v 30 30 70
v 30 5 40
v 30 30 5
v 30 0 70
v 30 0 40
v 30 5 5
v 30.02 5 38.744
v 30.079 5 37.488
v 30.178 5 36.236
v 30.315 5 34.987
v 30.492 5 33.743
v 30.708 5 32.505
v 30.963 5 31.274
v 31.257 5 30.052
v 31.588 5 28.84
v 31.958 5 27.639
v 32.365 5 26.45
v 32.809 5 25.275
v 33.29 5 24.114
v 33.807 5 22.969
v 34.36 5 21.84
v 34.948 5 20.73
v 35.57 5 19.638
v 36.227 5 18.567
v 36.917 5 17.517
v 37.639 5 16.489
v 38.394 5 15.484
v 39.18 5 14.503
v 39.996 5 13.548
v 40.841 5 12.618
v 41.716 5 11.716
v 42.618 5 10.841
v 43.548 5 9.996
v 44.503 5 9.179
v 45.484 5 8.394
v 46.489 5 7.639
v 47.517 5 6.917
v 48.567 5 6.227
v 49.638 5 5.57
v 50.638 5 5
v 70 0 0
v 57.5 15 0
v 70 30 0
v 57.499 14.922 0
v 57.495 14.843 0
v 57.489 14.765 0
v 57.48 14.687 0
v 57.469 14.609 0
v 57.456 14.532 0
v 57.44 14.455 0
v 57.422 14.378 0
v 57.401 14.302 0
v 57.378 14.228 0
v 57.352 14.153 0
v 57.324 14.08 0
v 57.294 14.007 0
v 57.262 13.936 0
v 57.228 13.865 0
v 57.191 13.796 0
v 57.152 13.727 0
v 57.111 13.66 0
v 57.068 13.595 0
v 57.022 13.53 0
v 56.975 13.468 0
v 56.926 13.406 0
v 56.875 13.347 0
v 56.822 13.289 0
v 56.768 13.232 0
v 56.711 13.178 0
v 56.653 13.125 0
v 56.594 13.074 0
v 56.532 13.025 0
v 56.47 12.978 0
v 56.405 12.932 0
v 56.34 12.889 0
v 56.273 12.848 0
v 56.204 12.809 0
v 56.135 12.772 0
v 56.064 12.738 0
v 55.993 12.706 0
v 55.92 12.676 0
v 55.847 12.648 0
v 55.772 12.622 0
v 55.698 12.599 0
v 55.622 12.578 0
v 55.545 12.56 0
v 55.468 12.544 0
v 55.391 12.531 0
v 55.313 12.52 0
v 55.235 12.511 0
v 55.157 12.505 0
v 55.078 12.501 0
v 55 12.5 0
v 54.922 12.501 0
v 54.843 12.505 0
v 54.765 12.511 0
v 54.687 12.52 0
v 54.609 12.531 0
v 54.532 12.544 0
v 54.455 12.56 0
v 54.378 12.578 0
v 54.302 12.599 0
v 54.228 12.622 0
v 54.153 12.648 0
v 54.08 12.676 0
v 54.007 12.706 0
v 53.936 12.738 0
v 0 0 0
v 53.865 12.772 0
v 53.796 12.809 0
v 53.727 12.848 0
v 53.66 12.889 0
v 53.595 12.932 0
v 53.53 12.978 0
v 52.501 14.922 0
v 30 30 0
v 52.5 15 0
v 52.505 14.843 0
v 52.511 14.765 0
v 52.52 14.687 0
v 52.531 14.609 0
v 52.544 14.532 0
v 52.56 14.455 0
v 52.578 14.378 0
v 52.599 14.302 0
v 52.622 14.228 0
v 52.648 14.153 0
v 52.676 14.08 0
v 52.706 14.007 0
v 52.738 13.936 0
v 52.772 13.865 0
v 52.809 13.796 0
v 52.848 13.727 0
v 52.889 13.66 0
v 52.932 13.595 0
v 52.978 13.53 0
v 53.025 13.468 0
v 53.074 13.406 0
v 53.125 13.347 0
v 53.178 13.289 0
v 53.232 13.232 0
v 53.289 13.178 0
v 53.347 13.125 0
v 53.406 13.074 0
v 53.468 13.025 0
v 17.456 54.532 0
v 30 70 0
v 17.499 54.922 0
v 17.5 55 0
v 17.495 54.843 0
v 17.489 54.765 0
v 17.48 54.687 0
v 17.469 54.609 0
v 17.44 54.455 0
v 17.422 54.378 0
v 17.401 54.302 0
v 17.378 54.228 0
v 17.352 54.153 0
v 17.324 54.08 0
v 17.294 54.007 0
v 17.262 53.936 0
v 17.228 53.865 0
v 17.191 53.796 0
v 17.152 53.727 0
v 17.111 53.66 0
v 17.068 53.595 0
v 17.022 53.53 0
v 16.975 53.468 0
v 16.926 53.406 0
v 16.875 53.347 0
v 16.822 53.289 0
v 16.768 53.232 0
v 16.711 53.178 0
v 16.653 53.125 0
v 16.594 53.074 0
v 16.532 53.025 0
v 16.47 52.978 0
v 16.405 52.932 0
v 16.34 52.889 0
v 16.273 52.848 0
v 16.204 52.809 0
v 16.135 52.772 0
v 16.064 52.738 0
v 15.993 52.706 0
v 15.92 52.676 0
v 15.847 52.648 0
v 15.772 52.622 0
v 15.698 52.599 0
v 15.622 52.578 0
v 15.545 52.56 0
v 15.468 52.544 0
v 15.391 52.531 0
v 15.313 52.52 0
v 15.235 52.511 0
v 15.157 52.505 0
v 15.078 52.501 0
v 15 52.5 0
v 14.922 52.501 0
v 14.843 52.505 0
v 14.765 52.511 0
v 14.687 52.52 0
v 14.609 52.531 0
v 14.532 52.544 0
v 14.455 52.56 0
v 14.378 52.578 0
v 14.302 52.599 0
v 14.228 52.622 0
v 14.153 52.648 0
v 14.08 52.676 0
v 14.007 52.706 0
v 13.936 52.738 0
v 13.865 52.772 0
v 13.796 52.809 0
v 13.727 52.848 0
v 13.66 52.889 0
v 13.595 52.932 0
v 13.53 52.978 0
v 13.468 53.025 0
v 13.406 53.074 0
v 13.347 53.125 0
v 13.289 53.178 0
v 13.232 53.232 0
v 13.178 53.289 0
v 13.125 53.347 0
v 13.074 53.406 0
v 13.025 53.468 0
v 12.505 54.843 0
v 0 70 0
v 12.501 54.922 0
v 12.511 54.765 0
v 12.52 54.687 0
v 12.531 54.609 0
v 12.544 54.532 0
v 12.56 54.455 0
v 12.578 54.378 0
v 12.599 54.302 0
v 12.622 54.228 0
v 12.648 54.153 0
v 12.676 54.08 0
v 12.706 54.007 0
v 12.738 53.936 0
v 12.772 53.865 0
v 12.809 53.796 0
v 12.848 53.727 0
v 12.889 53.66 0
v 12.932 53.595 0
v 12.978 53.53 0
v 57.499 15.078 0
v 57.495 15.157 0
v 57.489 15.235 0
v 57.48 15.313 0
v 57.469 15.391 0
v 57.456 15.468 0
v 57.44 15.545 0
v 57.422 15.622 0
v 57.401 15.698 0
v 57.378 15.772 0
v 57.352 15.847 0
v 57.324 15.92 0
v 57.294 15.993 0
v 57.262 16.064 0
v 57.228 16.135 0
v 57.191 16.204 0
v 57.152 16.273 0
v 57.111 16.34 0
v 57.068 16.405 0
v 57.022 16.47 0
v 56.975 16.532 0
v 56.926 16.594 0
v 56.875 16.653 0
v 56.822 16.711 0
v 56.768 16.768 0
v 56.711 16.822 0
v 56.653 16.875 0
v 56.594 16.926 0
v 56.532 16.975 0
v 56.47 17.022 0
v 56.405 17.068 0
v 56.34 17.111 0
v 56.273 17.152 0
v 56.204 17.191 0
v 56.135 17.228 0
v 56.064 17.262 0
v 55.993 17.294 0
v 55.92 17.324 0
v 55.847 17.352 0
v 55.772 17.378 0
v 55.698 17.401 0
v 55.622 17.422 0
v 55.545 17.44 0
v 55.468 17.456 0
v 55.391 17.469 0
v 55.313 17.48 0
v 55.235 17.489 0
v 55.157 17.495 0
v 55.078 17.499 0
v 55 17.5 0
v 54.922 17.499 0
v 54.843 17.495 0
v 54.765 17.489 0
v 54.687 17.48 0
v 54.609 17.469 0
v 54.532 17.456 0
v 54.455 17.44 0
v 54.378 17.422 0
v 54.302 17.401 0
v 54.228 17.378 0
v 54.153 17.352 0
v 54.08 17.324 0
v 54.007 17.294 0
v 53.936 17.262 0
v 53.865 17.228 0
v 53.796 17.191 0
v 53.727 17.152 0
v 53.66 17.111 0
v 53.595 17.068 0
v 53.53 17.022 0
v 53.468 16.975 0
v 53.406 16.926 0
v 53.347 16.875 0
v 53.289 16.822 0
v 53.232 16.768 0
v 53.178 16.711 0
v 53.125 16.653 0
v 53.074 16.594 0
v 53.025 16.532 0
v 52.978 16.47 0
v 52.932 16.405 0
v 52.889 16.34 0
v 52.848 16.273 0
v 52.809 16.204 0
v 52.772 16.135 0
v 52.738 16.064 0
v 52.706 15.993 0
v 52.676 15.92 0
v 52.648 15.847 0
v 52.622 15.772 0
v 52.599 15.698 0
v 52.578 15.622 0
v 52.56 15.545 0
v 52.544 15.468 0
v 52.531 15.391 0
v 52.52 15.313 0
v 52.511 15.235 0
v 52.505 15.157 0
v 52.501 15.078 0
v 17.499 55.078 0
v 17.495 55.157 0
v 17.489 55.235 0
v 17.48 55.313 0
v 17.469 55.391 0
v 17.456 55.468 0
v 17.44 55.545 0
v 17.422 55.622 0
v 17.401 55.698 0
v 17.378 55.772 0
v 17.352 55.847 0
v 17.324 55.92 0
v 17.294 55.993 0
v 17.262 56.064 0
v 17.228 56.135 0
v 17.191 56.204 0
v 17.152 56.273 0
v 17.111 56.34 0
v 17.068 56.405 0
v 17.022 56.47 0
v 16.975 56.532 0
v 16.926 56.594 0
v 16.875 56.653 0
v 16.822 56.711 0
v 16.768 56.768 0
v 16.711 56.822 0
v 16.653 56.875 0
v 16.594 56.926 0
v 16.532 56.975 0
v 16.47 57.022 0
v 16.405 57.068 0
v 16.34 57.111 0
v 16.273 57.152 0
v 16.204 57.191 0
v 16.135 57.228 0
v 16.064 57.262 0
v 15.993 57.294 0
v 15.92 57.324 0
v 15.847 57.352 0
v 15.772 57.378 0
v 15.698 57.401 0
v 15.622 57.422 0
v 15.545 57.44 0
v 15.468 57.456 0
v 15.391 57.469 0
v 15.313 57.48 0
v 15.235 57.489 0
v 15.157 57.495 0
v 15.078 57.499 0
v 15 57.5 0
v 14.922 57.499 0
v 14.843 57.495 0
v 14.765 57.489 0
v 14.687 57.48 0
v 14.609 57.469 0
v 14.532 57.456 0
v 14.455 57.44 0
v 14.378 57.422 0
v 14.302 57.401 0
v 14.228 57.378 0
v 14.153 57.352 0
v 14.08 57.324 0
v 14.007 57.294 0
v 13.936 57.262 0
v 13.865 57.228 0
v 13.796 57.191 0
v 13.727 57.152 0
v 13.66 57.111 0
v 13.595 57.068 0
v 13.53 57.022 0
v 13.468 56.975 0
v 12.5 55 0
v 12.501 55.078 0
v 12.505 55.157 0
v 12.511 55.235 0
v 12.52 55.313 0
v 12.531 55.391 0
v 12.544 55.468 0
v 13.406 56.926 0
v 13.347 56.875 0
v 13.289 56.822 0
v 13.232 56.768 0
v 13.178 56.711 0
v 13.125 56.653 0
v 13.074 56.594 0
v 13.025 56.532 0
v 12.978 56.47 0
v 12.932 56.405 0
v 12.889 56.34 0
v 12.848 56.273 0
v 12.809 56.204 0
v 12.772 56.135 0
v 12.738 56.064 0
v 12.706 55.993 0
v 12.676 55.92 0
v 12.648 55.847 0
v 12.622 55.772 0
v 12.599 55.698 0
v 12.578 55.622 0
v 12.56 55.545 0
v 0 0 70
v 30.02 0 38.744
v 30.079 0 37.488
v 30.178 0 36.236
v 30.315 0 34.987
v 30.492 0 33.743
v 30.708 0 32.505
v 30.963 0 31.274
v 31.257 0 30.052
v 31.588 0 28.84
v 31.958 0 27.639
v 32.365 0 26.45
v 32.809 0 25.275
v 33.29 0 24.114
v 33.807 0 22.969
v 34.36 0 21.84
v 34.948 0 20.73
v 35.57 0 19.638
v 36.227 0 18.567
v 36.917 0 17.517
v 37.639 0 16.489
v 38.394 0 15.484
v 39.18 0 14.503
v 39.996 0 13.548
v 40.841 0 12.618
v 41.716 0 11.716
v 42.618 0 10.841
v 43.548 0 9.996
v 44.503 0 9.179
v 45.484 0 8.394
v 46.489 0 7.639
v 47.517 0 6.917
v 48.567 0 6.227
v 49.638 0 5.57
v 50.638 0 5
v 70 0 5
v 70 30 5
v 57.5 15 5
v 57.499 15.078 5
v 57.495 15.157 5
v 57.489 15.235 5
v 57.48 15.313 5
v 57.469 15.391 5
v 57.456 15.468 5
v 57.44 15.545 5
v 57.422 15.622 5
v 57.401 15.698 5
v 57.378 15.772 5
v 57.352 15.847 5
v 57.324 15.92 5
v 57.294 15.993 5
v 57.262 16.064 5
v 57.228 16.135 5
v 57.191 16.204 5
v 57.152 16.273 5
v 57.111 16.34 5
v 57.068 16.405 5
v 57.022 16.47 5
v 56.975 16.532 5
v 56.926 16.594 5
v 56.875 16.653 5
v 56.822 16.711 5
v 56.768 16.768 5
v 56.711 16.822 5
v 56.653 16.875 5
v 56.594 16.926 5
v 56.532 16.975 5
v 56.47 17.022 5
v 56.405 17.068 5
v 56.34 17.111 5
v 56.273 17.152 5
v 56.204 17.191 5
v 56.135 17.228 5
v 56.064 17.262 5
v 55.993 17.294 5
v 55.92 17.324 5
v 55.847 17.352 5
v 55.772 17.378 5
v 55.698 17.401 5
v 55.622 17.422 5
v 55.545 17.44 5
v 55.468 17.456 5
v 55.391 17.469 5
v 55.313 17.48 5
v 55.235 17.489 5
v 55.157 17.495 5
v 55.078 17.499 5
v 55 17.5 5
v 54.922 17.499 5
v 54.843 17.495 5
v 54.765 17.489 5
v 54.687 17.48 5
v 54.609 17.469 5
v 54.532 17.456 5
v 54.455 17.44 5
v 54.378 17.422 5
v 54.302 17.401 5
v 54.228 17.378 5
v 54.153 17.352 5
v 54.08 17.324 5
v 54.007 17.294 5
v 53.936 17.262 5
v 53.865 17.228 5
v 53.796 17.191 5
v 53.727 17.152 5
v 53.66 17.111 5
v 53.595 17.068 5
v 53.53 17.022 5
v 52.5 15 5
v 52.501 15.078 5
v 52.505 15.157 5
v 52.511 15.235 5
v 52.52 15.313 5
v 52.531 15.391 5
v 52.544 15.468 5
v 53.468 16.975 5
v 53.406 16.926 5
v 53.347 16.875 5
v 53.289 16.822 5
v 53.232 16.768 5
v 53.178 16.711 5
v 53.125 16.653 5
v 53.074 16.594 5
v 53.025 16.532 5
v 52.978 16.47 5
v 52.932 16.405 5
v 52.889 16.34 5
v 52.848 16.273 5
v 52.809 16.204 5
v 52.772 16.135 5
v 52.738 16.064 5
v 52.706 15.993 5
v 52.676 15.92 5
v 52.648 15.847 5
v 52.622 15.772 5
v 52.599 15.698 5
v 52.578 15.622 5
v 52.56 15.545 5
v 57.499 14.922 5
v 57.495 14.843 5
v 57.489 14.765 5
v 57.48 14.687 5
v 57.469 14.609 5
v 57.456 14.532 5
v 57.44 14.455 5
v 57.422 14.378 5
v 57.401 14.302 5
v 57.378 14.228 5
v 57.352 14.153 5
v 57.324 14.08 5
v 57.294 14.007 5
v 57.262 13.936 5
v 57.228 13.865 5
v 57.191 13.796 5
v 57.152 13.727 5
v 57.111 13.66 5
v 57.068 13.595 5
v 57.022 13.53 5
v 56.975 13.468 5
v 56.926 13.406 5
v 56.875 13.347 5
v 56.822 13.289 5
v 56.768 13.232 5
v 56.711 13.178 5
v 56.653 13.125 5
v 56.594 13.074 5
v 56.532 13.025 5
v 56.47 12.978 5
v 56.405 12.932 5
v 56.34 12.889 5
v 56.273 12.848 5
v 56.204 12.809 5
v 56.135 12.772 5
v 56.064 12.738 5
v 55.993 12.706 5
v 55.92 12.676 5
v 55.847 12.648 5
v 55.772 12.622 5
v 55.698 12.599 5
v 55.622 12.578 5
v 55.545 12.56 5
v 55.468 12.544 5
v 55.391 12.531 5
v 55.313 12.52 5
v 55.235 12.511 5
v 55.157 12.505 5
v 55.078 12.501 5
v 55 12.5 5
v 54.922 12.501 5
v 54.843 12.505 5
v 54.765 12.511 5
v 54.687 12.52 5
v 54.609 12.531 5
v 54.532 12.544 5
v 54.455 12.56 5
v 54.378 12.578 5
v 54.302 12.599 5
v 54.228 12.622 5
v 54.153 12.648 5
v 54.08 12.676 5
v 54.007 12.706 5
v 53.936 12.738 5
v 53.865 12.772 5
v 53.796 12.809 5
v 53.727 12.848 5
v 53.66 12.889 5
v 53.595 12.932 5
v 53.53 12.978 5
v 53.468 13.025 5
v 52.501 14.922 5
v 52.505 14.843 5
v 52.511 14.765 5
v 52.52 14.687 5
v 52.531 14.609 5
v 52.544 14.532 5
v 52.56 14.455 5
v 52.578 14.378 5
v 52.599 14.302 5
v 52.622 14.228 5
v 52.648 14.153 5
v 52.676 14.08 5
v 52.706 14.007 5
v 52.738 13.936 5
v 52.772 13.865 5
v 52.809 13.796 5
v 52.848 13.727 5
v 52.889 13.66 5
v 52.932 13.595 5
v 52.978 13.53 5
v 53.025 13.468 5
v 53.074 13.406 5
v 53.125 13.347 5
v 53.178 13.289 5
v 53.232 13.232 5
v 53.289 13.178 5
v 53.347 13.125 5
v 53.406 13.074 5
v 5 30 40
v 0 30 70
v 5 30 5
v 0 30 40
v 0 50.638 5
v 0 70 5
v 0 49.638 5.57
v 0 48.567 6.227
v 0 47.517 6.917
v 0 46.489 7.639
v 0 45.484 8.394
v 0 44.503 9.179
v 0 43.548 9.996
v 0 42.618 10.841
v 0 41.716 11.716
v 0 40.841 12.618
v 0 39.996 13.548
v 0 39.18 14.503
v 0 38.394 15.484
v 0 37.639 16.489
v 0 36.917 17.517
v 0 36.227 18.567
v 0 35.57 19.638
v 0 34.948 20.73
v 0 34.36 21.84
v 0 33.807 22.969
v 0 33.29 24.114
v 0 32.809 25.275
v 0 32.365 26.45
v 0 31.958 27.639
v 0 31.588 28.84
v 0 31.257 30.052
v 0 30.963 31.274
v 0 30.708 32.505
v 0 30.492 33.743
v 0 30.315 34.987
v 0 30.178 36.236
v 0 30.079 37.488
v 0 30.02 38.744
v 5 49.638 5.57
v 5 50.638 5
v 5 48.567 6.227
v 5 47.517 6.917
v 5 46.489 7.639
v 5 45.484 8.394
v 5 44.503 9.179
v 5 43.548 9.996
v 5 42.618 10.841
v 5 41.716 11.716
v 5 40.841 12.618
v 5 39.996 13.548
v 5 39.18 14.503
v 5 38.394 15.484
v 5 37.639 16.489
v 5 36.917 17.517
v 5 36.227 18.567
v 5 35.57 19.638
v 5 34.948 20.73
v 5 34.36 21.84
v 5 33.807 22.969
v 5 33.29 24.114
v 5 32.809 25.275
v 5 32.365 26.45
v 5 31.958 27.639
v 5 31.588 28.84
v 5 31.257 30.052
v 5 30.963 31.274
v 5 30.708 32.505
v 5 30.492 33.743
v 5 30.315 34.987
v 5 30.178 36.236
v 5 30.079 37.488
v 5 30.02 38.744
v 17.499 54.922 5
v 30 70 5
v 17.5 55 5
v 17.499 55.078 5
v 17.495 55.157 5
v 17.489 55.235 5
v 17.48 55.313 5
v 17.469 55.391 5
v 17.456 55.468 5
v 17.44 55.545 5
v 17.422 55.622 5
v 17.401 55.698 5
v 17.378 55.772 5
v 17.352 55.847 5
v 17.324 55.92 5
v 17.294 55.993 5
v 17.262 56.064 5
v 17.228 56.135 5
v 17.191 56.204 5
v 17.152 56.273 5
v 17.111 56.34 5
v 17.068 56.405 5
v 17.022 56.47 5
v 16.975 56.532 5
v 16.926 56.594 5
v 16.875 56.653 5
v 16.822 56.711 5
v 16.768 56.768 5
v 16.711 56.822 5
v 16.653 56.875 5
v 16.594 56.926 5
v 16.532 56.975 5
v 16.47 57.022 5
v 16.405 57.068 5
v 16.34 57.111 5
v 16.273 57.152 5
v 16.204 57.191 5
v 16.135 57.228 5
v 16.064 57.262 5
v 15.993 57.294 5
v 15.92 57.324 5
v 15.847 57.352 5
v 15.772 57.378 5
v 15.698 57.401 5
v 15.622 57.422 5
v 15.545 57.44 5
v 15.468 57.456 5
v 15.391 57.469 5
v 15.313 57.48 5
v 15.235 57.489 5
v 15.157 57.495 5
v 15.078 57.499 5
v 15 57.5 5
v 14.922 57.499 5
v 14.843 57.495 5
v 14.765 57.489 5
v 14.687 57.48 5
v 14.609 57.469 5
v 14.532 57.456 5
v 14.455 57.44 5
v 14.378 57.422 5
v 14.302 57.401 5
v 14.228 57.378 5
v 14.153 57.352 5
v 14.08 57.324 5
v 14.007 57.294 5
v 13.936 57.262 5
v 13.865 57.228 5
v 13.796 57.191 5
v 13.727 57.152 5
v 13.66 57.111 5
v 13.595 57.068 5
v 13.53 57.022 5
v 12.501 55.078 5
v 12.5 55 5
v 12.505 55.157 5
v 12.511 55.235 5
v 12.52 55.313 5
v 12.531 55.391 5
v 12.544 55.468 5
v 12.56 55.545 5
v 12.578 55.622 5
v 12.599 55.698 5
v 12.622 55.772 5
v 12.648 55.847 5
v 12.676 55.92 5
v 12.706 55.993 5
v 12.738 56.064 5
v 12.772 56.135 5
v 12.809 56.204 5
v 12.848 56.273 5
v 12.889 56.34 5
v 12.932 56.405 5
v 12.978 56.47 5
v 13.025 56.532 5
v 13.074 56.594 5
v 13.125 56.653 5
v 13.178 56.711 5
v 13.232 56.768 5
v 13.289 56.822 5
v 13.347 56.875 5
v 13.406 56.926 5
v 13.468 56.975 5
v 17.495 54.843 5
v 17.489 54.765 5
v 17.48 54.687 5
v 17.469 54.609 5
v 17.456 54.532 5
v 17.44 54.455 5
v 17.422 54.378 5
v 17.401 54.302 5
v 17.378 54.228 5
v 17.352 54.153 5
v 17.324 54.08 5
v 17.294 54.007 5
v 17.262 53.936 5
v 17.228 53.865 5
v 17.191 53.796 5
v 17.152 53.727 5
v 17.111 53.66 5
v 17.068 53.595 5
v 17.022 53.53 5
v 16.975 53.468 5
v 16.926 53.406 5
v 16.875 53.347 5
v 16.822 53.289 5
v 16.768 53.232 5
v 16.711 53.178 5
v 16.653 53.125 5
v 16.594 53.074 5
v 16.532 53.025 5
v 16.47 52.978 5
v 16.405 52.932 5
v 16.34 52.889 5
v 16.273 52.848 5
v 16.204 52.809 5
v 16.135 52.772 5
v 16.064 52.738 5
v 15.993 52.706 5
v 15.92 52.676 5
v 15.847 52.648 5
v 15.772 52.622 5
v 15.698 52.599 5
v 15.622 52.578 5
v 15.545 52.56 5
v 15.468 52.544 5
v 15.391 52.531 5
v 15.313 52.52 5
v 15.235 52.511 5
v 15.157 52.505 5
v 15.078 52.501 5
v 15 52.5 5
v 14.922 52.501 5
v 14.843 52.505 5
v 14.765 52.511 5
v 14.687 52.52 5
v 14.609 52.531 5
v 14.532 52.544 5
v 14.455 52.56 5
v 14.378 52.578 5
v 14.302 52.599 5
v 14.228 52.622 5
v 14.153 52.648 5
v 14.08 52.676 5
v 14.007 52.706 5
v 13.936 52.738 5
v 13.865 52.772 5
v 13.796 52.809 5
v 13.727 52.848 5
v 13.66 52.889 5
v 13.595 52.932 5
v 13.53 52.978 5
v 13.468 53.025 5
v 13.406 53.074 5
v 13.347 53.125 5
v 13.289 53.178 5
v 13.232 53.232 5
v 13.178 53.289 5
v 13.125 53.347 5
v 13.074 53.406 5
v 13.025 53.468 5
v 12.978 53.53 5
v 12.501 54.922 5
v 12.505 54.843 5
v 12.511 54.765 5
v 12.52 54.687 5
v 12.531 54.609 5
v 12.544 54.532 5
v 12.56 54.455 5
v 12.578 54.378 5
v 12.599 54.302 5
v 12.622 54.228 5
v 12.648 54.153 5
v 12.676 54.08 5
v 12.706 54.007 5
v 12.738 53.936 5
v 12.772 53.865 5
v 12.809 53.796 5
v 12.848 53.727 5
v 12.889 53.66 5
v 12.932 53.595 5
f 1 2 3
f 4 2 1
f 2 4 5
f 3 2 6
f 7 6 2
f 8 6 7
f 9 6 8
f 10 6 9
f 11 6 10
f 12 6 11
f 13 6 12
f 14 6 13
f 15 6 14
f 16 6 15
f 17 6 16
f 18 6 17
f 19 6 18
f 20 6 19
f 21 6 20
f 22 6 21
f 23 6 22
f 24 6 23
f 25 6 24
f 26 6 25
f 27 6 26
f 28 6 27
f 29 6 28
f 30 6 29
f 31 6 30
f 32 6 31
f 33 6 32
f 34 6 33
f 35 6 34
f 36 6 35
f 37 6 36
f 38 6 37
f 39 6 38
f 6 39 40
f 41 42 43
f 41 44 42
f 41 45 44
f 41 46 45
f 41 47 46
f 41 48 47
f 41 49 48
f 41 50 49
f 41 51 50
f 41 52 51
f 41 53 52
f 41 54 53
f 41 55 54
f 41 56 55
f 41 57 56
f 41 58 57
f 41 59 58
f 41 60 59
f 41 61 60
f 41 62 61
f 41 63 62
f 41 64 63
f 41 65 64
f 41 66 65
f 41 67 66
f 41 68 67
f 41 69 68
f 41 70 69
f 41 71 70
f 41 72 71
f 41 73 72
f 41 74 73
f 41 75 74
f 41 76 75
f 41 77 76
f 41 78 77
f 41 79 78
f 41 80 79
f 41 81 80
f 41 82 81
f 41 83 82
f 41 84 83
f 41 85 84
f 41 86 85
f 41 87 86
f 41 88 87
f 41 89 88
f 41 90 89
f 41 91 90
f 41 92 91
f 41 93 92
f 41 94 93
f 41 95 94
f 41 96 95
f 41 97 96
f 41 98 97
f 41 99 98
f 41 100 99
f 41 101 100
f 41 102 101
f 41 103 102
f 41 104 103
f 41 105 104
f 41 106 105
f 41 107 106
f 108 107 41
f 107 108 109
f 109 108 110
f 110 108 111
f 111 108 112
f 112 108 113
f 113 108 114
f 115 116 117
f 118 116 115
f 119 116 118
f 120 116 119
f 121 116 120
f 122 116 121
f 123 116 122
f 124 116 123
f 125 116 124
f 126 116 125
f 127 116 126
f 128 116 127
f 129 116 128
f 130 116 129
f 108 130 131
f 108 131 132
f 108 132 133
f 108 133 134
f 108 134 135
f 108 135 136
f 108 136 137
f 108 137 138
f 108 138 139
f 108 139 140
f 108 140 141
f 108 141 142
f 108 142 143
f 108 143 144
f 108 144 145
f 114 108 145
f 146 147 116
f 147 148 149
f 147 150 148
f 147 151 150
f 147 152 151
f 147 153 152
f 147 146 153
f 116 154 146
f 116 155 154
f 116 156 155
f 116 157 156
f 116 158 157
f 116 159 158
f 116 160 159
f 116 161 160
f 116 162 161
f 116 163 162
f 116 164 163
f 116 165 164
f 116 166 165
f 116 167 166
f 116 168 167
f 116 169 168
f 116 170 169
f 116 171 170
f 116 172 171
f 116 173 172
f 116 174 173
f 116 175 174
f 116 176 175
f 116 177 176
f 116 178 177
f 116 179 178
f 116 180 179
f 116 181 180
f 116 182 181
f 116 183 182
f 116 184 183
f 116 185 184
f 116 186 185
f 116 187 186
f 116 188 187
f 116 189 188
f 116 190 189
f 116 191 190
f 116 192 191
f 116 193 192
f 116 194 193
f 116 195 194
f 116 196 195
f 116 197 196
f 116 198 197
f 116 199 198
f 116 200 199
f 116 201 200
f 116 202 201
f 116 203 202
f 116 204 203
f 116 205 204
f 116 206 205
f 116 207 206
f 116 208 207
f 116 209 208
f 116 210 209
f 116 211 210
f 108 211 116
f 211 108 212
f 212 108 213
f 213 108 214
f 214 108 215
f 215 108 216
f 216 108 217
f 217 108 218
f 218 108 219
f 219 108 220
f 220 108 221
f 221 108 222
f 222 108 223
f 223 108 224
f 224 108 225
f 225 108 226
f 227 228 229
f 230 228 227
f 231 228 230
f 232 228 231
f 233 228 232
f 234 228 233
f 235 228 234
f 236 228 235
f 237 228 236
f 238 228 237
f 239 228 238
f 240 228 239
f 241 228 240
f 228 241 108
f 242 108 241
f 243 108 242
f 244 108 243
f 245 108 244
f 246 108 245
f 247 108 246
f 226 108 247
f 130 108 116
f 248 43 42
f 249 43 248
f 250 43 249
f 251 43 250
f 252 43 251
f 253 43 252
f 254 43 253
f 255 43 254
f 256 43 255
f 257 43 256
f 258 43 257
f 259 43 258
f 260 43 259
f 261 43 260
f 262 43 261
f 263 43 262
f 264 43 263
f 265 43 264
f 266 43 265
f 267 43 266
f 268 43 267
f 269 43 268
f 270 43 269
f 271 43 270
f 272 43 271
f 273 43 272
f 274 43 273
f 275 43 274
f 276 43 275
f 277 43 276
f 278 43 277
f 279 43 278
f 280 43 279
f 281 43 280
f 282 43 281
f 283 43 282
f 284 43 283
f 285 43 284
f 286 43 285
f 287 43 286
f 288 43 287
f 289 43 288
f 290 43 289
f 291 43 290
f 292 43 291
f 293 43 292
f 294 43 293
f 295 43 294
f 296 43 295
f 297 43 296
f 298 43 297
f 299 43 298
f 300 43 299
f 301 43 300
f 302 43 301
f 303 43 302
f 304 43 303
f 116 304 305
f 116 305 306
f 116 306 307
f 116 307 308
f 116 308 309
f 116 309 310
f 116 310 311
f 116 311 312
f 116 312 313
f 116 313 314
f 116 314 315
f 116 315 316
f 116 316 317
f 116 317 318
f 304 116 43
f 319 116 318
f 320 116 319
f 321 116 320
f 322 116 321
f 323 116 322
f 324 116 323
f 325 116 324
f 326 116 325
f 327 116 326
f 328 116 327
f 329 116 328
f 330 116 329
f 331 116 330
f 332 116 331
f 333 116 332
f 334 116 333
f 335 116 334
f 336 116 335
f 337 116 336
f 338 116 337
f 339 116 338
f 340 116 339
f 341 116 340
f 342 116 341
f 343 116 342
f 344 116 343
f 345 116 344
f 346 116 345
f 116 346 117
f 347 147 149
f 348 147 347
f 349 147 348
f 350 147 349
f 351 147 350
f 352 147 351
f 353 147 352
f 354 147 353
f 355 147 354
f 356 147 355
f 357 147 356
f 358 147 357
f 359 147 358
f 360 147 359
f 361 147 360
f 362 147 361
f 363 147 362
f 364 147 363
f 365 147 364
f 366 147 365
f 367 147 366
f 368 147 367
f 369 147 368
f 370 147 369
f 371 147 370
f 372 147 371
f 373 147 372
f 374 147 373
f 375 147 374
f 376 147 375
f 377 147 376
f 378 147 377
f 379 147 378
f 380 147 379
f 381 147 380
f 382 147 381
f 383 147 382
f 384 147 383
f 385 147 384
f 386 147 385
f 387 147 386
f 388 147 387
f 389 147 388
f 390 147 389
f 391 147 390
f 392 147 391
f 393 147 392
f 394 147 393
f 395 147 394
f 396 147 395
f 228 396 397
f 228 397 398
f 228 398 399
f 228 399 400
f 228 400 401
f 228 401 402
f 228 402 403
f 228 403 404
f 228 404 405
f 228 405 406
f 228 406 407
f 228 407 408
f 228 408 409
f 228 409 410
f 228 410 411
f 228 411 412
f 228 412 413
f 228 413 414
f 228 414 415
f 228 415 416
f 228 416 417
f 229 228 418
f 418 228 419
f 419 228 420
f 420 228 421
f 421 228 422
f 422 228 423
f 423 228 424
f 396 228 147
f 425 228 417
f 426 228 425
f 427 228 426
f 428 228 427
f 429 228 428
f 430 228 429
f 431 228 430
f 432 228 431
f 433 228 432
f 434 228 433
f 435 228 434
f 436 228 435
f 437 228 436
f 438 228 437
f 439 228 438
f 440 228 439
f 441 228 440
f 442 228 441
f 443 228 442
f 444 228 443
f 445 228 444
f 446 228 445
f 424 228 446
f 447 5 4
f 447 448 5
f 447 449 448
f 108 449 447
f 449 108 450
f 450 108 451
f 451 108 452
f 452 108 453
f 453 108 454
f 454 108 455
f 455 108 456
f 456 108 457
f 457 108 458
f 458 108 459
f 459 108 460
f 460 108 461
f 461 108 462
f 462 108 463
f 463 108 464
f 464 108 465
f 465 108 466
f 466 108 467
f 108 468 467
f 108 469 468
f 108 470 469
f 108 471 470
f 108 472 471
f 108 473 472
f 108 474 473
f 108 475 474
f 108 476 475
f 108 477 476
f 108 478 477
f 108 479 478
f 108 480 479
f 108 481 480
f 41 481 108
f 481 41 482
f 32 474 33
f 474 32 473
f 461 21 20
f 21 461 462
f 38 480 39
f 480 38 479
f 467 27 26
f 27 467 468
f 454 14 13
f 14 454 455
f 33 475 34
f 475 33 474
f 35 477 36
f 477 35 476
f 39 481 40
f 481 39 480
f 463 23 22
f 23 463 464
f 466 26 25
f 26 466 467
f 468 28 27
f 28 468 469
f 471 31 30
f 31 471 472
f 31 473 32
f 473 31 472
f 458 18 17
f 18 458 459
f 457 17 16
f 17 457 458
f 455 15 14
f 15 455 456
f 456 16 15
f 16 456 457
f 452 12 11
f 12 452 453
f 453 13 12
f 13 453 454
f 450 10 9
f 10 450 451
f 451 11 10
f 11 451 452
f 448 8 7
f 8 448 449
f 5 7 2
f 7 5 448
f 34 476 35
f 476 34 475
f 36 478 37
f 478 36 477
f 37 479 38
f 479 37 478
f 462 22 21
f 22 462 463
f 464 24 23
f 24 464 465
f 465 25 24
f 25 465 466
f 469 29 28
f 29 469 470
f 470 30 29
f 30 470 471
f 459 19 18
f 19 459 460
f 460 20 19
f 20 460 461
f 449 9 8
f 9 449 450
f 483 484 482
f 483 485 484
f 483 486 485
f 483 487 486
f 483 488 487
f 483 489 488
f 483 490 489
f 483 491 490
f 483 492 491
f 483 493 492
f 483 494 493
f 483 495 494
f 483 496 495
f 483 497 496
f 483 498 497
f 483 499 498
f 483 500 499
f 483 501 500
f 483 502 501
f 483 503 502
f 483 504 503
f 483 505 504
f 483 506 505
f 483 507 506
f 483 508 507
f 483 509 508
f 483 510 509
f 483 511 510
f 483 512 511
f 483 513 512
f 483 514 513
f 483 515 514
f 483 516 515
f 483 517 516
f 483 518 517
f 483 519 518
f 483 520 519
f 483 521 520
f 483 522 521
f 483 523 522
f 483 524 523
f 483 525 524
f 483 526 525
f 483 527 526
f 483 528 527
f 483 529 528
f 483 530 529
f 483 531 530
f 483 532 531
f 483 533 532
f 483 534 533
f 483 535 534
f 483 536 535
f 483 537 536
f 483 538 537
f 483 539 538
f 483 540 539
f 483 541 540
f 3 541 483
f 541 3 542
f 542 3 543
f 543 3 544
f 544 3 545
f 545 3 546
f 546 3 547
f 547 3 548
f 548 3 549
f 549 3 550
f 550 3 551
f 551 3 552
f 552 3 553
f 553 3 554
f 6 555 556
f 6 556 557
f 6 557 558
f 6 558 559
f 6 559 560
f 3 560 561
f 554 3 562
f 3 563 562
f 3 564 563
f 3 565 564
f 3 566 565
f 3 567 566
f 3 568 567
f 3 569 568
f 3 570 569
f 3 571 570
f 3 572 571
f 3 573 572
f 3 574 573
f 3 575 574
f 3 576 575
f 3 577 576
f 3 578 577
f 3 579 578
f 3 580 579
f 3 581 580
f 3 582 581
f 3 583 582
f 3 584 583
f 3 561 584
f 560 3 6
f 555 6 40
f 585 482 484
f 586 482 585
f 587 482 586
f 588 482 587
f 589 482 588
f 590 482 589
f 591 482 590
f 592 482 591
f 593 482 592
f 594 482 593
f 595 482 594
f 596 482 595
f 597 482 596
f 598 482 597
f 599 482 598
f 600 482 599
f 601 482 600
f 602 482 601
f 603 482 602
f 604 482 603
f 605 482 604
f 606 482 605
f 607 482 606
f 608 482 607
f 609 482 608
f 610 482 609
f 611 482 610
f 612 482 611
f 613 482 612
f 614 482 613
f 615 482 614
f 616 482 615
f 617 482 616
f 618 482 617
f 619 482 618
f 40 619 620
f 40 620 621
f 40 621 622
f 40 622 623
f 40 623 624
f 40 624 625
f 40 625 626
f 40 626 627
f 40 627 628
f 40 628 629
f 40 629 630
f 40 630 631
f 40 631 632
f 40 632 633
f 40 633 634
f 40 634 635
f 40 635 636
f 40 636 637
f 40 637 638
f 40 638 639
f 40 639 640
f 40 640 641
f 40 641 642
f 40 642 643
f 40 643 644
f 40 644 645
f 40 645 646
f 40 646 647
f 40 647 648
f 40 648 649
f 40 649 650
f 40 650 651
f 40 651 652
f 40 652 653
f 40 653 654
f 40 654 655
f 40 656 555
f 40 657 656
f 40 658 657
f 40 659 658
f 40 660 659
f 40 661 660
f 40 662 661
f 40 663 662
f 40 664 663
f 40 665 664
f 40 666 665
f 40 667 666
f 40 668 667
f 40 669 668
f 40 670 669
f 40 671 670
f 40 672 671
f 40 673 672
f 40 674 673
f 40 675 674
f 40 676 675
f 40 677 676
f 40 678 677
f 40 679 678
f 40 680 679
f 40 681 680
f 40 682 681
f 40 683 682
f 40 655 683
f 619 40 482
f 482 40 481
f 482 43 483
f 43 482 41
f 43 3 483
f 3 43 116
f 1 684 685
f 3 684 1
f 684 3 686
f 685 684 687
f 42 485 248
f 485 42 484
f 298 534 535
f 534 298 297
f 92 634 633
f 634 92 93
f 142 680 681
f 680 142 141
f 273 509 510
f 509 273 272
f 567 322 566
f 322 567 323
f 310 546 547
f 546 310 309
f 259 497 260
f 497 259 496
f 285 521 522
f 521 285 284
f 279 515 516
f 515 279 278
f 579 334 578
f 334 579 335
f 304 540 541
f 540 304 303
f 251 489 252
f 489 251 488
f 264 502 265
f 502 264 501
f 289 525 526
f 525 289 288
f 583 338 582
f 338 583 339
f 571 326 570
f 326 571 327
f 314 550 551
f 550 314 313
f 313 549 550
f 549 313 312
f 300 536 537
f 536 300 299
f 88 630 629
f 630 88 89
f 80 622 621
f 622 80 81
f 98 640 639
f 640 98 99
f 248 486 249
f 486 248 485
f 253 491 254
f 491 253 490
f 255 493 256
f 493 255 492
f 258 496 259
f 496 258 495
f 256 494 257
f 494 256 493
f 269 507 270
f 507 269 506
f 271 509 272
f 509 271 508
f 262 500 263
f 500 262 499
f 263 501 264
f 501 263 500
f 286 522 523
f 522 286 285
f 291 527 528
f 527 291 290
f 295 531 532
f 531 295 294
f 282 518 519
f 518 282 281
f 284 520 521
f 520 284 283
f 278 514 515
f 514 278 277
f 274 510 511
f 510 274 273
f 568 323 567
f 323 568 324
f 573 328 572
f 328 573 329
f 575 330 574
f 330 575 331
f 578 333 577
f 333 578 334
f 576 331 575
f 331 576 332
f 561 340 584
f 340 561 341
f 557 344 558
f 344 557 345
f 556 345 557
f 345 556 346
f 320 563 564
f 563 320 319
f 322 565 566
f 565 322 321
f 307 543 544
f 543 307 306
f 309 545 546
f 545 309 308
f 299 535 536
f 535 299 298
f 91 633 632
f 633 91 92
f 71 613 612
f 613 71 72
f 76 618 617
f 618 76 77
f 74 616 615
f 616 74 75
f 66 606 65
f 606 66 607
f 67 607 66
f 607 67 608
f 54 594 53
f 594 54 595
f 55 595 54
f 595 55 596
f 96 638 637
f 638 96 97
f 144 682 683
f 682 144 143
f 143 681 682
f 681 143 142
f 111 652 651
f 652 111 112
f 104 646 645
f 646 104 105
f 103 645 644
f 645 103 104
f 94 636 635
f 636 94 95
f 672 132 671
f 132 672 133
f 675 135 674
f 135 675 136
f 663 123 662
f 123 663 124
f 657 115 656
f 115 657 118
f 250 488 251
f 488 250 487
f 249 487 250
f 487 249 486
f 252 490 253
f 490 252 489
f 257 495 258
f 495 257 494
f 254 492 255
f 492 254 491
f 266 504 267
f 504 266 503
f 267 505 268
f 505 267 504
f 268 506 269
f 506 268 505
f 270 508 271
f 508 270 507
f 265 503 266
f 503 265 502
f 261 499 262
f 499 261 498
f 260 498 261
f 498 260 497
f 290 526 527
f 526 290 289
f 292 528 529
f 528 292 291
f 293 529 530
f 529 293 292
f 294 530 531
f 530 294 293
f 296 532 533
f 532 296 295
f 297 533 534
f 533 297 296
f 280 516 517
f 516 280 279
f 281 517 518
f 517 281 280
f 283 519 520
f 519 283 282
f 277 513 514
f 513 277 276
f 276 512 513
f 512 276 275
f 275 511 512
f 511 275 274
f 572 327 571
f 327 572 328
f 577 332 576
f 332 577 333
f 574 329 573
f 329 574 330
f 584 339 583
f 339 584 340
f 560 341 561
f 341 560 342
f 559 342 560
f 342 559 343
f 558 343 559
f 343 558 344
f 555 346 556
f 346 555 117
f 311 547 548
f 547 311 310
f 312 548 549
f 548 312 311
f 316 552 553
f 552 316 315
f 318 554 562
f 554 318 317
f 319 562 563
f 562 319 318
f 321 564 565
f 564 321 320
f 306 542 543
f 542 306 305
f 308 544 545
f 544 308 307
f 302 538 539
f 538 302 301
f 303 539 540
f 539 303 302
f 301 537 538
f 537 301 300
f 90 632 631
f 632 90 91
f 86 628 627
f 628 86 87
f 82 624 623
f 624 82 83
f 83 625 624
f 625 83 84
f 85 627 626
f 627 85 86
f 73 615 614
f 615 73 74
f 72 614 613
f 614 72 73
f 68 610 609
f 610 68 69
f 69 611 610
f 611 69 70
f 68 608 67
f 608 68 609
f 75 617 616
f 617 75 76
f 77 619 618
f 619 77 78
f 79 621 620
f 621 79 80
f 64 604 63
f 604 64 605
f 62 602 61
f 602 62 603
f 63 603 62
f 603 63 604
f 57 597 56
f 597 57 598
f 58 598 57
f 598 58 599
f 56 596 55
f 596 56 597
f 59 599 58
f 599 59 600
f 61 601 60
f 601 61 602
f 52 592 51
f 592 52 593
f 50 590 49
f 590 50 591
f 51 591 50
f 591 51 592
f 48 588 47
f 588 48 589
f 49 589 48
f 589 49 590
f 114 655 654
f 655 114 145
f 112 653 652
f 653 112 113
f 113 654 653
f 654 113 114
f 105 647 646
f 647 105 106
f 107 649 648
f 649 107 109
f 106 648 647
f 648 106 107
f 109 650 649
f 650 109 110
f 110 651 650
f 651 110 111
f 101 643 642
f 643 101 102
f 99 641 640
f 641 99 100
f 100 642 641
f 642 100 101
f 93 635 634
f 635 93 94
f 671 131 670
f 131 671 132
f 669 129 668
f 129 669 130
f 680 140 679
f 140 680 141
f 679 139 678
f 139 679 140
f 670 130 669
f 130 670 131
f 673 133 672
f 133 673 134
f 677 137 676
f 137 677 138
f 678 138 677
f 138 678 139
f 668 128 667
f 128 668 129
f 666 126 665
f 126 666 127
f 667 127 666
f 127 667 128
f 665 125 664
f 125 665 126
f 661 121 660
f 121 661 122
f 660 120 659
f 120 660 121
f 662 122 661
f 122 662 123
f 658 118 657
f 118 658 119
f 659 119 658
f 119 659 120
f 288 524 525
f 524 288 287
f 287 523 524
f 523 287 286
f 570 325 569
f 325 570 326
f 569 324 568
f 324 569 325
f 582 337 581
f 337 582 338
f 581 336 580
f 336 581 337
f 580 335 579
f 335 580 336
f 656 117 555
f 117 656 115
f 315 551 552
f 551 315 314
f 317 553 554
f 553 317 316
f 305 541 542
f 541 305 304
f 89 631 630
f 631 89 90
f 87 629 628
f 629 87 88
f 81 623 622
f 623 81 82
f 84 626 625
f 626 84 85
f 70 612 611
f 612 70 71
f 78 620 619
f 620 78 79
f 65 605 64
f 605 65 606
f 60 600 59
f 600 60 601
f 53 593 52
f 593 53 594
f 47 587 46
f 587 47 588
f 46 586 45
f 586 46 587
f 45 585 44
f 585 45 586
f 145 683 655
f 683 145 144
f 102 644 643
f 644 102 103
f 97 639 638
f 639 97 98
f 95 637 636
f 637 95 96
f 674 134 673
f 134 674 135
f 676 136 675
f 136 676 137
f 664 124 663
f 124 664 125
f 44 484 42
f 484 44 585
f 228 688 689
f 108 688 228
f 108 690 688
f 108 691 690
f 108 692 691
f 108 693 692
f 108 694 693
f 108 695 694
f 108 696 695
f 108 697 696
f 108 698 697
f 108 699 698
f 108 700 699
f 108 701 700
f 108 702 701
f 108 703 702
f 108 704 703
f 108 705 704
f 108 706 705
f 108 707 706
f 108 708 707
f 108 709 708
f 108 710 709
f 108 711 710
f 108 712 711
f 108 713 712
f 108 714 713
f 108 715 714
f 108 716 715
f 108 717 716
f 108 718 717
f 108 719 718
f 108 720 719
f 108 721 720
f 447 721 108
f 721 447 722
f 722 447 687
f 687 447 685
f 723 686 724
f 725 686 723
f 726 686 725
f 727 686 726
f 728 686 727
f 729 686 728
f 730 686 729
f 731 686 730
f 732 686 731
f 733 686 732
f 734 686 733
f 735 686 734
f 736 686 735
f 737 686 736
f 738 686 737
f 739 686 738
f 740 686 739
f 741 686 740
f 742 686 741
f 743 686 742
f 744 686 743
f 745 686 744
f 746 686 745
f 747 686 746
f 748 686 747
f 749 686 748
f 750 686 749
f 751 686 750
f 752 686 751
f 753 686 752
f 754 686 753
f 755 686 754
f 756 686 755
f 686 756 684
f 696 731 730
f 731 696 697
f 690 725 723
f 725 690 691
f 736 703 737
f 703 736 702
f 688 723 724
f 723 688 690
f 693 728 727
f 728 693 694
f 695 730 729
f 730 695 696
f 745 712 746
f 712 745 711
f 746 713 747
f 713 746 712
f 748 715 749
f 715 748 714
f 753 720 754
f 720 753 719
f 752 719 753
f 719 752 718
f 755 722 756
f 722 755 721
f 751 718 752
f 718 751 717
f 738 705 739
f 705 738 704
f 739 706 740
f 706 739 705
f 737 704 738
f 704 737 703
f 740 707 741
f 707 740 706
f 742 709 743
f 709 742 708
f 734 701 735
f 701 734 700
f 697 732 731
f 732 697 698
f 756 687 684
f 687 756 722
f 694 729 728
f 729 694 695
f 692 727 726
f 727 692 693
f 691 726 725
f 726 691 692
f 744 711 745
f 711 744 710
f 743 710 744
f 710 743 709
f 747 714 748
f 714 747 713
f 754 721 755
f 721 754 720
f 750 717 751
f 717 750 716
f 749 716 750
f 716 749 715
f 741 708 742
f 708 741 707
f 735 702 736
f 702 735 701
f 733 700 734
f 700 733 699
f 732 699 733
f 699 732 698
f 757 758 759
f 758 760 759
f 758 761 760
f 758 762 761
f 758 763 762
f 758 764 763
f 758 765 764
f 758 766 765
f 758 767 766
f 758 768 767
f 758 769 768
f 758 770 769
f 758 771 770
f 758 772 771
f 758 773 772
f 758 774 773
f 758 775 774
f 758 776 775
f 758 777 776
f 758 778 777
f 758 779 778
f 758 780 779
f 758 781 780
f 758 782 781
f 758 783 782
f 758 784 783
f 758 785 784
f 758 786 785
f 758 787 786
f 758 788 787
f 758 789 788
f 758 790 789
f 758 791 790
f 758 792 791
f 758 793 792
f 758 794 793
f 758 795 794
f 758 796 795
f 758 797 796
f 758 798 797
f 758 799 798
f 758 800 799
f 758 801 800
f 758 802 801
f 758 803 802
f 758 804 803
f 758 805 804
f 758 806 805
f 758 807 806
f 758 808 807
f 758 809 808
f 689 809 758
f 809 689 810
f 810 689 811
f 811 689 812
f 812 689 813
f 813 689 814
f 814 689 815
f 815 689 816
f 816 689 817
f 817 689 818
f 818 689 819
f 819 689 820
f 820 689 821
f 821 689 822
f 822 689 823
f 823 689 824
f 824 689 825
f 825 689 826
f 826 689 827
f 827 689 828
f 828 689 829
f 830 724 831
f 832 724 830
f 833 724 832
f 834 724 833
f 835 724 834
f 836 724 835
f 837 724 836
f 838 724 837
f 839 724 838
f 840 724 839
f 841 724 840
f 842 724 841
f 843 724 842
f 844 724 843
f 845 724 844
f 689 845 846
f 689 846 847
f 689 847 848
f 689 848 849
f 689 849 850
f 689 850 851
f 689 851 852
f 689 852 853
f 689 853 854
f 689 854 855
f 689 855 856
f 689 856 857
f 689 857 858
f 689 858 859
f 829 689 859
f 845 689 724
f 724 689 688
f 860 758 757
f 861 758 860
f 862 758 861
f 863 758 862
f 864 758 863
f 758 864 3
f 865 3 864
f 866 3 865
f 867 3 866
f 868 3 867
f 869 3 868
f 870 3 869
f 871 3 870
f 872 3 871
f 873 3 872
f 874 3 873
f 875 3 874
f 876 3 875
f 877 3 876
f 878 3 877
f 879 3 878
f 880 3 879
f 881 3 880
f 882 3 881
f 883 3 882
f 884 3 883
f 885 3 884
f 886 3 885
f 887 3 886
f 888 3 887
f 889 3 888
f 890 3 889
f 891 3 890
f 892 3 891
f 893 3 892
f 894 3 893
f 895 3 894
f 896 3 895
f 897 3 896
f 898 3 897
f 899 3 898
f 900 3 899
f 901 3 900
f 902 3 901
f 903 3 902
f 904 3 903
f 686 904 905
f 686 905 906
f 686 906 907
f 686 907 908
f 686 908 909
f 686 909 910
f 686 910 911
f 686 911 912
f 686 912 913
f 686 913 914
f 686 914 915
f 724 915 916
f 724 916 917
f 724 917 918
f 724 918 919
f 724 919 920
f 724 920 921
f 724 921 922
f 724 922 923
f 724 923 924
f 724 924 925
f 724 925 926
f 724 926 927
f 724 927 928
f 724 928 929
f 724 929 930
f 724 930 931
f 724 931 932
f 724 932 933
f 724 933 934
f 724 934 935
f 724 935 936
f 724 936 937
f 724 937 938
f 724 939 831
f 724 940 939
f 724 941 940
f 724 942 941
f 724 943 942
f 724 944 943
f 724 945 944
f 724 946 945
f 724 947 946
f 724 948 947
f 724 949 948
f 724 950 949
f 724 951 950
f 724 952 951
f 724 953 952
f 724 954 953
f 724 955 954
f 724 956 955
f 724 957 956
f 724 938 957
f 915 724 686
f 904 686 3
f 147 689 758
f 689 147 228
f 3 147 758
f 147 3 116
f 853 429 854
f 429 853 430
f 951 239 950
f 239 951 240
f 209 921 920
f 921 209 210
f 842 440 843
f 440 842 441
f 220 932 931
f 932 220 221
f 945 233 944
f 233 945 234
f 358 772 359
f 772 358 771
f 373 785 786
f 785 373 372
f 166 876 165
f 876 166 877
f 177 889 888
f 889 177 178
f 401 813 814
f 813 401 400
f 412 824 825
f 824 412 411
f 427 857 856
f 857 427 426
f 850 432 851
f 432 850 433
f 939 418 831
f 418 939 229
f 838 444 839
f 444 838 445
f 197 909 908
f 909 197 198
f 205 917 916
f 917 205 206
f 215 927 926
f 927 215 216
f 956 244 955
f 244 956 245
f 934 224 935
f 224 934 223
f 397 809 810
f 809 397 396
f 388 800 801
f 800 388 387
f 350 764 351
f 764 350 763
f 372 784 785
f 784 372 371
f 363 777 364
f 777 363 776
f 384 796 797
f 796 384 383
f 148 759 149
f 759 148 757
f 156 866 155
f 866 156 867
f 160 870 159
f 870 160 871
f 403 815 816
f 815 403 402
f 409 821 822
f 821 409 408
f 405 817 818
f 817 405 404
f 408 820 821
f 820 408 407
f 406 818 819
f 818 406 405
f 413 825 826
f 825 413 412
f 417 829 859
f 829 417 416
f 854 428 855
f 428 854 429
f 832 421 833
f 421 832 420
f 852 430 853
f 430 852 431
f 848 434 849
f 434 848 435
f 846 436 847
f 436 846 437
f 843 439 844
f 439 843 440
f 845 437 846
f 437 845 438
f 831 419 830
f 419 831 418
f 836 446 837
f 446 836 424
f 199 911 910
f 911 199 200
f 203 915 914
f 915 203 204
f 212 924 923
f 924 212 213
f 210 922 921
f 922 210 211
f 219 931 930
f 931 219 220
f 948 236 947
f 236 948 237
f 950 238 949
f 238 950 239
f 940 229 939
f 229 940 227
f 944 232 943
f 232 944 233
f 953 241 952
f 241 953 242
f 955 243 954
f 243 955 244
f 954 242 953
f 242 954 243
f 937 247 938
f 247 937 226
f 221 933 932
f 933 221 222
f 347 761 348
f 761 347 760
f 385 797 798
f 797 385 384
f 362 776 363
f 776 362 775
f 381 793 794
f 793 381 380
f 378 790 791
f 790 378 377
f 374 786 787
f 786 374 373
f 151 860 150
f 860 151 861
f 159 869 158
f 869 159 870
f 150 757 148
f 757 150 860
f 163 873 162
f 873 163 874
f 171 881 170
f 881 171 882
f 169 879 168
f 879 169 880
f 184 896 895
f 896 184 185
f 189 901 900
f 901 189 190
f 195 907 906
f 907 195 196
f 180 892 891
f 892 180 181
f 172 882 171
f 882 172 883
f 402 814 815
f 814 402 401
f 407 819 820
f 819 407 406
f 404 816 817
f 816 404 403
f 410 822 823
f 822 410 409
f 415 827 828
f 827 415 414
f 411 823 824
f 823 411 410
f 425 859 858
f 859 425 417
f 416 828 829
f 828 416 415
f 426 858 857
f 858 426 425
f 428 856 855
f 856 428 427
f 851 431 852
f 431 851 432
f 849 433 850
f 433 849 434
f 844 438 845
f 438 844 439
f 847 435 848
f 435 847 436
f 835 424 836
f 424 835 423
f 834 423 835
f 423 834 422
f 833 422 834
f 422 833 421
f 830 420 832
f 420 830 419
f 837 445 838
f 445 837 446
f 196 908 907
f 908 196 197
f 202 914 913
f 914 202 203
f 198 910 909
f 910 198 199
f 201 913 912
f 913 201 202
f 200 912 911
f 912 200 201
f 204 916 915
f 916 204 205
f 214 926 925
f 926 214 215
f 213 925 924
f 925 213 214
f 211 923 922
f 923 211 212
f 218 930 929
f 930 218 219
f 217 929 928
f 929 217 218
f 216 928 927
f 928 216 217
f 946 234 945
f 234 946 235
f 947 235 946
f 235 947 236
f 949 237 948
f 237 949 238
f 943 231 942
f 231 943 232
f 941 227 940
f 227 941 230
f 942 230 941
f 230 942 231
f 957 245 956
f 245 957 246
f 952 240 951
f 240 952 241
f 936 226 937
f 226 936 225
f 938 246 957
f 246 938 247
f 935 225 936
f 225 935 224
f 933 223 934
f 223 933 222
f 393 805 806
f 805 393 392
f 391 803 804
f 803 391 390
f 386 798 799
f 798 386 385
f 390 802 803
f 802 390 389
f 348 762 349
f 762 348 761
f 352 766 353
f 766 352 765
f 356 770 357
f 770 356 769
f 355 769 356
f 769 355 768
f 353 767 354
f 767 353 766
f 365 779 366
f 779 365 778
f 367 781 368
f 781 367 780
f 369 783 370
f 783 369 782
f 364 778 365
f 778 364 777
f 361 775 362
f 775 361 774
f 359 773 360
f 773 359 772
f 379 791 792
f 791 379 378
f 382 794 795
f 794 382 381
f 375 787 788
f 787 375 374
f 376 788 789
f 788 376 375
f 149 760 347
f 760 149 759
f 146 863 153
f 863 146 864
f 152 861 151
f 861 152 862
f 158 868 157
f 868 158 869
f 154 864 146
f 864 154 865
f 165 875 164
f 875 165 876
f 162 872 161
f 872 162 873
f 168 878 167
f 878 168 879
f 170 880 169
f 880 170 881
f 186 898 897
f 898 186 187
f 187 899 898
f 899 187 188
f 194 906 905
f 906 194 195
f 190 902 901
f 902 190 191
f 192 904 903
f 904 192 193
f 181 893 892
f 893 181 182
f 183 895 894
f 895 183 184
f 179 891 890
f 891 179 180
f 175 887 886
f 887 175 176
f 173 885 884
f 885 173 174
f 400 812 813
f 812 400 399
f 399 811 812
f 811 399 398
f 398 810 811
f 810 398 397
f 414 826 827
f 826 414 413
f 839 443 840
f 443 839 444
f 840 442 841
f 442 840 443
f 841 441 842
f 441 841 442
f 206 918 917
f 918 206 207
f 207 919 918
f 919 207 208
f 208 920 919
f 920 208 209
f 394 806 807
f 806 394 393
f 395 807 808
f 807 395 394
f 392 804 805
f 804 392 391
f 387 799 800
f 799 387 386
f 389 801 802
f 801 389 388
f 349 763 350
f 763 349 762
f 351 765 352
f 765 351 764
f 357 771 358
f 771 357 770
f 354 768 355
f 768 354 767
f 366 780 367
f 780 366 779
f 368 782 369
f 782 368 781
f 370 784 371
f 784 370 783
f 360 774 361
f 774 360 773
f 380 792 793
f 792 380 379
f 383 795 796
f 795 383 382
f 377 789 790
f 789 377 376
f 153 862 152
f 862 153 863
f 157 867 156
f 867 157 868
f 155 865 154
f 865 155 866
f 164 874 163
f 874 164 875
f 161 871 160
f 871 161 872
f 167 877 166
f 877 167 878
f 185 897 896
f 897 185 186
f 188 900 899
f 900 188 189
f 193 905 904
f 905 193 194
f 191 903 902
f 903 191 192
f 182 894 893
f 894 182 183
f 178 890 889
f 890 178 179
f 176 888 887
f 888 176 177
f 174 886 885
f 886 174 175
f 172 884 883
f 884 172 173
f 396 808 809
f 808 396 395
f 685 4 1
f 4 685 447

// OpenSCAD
$fn = 200;

height = 70;
bracketLength = 40;
standWidth = 30;
bracketThickness = 5;
holeDiameter = 5;

// stand
cube([standWidth, standWidth, height]);

// bracket 1
translate([standWidth, 0, 0])
bracket1();

rotate([0, 0, 90])
translate([standWidth, -standWidth, 0])
bracket2();

module bracket1() {
    difference() {
        union() {
            cube([bracketLength, standWidth, bracketThickness]);
        
            //brace
            difference() {
                cube([bracketLength, bracketThickness, bracketLength]);
                rotate([90, 0, 0])
                translate([bracketLength, bracketLength, -bracketThickness - 0.5])
                cylinder(h=bracketThickness + 1.0, r=bracketLength);
            }
        }
        
        holes();
    }
}

module bracket2() {
    difference() {
        union() {
            cube([bracketLength, standWidth, bracketThickness]);
        
            //brace
            difference() {
                translate([0, standWidth-bracketThickness, 0])
                cube([bracketLength, bracketThickness, bracketLength]);
                rotate([90, 0, 0])
                translate([bracketLength, bracketLength, - standWidth - 0.5])
                cylinder(h=bracketThickness + 1.0, r=bracketLength);
            }
        }
        
        holes();
    }
}

module holes() {
    translate([bracketLength - standWidth/2, standWidth/2, -0.5])
    cylinder(h=bracketThickness+1.0, d=holeDiameter);
}
